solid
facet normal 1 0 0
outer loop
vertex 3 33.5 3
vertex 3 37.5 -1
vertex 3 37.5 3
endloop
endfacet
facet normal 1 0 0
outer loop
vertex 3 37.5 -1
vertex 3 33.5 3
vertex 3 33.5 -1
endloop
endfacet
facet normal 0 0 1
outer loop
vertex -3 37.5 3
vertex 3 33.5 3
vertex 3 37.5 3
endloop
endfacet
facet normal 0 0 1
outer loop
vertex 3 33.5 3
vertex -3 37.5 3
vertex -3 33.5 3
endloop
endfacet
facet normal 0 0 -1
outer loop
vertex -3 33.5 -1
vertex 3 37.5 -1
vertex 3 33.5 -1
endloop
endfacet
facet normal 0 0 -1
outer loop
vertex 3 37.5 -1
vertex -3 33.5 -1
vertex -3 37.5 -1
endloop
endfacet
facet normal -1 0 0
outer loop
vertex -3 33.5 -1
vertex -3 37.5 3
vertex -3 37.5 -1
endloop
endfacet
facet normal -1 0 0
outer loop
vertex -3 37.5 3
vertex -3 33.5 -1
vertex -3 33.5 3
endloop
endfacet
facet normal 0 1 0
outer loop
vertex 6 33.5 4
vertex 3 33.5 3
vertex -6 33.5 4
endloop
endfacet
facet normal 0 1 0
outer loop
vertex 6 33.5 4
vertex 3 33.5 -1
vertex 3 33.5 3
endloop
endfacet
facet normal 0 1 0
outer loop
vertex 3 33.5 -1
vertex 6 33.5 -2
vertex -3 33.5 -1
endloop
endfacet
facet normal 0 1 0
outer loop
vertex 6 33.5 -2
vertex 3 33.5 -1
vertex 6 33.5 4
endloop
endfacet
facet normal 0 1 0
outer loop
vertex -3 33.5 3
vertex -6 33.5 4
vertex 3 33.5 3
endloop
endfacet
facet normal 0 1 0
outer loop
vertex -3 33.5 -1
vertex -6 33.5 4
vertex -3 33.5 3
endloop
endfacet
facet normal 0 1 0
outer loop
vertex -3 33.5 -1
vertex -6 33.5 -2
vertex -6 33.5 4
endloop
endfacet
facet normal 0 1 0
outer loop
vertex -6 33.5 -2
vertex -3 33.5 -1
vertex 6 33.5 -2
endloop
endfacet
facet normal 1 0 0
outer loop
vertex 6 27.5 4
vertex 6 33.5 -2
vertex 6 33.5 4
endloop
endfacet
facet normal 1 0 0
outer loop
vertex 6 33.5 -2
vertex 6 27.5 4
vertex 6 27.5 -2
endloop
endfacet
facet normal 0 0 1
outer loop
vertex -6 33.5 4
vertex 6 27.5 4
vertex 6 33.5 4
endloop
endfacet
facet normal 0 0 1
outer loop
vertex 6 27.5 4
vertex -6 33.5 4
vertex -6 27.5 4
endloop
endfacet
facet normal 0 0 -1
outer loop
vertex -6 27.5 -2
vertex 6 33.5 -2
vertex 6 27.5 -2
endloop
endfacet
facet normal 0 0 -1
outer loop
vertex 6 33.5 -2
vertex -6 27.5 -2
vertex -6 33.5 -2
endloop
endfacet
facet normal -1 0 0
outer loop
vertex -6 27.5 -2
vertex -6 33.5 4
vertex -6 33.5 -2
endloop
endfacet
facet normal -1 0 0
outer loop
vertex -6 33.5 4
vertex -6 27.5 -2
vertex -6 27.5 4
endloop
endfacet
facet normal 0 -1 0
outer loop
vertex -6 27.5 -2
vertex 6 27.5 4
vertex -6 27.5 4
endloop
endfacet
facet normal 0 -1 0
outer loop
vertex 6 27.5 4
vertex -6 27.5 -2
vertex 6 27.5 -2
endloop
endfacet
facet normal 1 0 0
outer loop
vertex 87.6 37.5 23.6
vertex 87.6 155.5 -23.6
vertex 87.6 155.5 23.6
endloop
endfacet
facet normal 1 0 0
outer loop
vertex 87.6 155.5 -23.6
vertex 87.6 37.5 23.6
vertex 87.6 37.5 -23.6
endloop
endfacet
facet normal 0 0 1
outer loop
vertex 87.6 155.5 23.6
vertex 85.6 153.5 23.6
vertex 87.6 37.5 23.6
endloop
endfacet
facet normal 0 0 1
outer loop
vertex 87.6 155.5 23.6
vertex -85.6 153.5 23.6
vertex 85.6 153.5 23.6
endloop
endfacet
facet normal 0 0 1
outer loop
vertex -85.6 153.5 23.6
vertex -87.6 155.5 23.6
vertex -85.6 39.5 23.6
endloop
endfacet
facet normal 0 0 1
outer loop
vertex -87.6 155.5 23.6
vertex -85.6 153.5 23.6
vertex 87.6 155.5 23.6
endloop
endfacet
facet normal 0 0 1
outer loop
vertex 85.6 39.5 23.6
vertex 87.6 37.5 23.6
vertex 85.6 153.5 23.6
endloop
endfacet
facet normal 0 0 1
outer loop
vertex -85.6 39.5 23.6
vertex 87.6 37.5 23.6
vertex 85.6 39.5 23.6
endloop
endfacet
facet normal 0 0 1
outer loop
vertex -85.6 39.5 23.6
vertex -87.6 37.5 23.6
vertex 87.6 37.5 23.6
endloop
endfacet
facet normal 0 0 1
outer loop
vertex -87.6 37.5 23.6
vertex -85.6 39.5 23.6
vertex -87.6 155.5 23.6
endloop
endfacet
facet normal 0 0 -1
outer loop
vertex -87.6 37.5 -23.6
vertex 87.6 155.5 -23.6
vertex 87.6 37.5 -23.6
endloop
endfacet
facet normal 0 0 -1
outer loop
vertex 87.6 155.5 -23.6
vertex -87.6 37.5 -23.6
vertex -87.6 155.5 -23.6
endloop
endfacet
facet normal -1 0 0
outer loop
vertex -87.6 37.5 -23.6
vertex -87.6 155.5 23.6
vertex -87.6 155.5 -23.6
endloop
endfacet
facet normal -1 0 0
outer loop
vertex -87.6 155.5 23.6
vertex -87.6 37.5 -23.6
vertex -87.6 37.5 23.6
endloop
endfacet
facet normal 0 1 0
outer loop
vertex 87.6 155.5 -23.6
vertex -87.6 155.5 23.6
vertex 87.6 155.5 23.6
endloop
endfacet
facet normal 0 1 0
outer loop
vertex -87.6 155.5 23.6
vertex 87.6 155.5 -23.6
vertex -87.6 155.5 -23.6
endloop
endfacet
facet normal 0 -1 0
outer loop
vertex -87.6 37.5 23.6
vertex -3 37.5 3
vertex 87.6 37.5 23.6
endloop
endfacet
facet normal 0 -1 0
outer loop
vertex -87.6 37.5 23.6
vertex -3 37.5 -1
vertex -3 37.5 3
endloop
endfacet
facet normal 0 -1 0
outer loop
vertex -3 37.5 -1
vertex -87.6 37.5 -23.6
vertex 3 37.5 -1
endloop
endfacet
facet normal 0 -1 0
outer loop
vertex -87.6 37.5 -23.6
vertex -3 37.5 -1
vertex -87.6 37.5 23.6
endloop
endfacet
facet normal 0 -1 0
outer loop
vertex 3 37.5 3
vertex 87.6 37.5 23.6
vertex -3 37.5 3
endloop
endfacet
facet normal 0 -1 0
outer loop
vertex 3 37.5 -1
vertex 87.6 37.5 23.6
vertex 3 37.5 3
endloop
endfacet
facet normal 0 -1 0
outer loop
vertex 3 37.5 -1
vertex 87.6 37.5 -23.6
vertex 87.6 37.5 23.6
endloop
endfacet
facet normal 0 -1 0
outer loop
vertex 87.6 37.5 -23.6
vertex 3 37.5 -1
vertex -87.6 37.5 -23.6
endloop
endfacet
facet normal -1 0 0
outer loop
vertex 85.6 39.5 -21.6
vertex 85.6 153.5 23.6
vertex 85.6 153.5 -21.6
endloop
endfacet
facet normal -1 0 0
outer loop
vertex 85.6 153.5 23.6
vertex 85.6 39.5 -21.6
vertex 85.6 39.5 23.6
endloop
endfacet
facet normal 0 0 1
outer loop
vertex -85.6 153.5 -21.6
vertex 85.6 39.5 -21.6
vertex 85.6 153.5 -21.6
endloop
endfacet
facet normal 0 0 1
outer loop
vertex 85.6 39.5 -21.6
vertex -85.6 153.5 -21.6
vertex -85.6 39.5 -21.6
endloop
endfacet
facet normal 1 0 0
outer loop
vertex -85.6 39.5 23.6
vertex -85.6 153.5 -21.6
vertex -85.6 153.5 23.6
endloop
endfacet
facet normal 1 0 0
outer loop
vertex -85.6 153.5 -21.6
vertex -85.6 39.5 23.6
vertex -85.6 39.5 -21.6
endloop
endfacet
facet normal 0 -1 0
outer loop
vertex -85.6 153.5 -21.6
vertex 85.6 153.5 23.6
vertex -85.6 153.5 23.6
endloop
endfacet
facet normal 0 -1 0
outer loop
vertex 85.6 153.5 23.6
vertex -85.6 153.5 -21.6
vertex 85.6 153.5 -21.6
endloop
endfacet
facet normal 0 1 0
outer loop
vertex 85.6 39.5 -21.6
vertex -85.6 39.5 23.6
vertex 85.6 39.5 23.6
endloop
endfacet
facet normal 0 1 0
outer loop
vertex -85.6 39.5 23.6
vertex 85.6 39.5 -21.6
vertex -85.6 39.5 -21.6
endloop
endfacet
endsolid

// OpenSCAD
// file: ParametricDrawerSettings.scad
/* [ Parametric 3 drawer box v.1 ]
written by: Hermes Alvarado <hermesalvarado@gmail.com
*/

//Define main dimensions:
thickness = 2 ;
bottomthickness = 2;
boxwidth = 180;
boxheight = 50;
boxdepth = 120;
tolerance = .4;
//Handle dimension:
handlewidth = 12;
handledepth = 6;
//Automatic definitions:
//holeheight = (boxheight/3)-(thickness*1.3333);
//holeheight = (boxheight)-(thickness*1.3333);
holeheight = (boxheight)-(thickness);
drawerwidth = boxwidth-(thickness*2)-(tolerance*2);
drawerheight = holeheight-tolerance*2;
drawerdepth = boxdepth-bottomthickness;
drawerpositionY = boxheight*.75+drawerdepth/2;
drawerpositionX = boxwidth*.75+drawerwidth/2;
// main file
include <ParametricDrawerSettings.scad>

difference(){
    union(){

        //main box of drawer
        translate([0,drawerpositionY,0]){
            cube([drawerwidth,drawerdepth,drawerheight],true);
        }
        //Handle
        translate([0,drawerpositionY-drawerdepth/2-handledepth/2,-drawerheight/2+bottomthickness/2]){
            translate([0,2,(drawerheight/2)])                       //find the middle of the drawer
                cube([handlewidth/2,handledepth,bottomthickness*2],true);
            translate([0,2-handledepth,(drawerheight/2)]) 
                cube([handlewidth,handledepth,handledepth],true);
            
        }
    }
    //Hole in cube
    translate([0,drawerpositionY,bottomthickness]){
        cube([drawerwidth-thickness*2,drawerdepth-thickness*2,drawerheight],true);
    }

}
